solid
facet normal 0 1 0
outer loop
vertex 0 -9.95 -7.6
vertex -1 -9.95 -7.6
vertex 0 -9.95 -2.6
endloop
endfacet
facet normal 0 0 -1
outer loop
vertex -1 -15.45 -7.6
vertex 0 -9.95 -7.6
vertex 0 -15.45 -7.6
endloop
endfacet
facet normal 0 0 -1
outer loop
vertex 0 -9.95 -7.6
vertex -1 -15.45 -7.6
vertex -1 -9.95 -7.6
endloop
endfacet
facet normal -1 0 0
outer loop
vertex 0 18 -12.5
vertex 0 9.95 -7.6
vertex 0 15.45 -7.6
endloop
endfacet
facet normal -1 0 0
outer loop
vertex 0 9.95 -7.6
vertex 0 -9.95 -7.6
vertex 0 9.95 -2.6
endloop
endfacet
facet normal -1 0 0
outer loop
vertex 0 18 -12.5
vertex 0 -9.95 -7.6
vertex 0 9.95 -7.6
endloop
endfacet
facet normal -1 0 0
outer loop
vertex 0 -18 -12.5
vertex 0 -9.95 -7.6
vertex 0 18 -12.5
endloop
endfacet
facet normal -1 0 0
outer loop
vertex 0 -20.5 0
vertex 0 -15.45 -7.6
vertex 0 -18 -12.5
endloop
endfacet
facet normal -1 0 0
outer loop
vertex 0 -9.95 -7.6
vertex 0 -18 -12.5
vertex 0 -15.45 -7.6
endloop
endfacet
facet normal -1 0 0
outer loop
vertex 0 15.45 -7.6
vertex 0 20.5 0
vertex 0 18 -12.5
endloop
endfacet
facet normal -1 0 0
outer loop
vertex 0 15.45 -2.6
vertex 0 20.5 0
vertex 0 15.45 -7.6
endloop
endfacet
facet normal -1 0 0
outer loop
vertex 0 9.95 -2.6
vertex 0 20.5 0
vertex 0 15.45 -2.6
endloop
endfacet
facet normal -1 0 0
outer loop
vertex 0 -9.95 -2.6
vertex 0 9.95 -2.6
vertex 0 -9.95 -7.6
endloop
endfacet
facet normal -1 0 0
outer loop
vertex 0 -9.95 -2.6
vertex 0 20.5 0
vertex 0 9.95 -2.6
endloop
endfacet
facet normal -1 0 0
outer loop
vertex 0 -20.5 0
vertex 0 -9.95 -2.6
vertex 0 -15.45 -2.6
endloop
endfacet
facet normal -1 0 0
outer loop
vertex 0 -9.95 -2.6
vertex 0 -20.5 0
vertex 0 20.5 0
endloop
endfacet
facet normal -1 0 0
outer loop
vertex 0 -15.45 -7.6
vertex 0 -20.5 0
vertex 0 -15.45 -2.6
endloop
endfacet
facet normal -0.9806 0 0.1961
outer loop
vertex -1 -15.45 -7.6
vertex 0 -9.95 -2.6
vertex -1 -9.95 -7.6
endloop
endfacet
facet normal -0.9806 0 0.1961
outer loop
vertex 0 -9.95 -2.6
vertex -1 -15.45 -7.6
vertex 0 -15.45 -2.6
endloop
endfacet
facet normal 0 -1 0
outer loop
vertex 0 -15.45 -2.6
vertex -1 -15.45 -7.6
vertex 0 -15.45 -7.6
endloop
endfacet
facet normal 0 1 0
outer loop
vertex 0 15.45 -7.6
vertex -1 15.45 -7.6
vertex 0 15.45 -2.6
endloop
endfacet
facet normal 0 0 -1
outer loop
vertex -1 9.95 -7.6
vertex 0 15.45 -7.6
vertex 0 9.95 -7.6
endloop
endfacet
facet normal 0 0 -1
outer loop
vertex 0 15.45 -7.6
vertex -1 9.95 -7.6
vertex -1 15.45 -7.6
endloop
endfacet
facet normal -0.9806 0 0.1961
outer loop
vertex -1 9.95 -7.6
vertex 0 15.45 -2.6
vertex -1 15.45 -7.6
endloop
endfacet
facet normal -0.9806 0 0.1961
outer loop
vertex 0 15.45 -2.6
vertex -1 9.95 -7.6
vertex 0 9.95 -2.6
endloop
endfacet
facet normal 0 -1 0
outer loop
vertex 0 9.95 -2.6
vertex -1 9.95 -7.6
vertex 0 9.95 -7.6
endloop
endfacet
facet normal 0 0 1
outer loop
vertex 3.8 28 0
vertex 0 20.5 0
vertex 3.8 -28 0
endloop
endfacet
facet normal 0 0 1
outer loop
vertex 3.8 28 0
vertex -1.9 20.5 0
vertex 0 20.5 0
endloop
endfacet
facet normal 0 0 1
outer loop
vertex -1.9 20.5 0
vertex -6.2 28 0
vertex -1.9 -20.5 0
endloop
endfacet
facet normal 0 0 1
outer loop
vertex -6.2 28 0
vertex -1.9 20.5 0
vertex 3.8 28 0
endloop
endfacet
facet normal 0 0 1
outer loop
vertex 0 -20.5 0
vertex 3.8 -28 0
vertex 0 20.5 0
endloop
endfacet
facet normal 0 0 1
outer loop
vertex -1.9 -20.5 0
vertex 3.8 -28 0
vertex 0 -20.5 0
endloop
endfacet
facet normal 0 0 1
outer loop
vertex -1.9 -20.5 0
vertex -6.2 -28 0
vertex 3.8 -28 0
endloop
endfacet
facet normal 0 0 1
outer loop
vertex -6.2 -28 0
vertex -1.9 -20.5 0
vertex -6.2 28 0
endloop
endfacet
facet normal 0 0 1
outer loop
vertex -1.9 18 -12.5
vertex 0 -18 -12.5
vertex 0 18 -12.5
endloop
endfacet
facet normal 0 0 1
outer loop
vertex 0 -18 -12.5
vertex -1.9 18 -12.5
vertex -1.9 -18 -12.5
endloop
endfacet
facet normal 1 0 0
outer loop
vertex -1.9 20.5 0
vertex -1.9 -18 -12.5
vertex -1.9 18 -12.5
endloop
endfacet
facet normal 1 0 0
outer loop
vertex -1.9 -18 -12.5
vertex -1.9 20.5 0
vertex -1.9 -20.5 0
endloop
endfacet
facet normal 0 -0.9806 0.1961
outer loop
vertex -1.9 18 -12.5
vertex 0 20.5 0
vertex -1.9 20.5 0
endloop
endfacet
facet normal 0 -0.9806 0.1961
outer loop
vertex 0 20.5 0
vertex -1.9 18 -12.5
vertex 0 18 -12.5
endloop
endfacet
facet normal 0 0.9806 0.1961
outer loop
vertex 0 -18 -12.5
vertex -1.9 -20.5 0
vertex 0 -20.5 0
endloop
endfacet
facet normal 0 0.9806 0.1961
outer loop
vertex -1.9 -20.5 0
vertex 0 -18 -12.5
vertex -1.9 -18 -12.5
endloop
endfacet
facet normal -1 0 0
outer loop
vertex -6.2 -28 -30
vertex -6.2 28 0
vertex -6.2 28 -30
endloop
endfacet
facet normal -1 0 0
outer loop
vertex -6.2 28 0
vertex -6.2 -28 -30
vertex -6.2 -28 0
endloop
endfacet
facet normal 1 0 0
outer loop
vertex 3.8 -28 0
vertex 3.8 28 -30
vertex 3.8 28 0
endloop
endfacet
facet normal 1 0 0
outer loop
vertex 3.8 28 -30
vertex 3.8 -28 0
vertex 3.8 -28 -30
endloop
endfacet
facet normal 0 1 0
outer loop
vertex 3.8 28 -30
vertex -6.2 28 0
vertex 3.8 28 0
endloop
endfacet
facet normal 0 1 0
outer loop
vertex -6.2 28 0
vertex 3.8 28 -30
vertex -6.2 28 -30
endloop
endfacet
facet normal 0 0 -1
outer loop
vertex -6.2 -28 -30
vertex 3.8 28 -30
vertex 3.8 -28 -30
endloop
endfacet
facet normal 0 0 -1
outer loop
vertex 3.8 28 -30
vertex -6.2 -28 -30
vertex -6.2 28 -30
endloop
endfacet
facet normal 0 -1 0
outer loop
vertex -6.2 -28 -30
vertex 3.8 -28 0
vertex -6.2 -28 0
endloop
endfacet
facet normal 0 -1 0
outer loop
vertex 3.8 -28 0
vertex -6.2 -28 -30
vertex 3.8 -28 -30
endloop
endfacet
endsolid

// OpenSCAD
include <MCAD/units.scad>

dim_y = 56*mm;
dim_x = 10*mm;
dim_z = 30*mm;

slot_x_1 = 3.8*mm;

slot_y = 41*mm;
slot_bottom_y = 36*mm;
slot_x = 1.9*mm;
slot_z = 12.5*mm;

slot_relief_r = 2*mm;

snap_d_y = 1.00*inch;
snap_z = 7.6*mm;
snap_z_h = 5*mm;
snap_prot_x = 1*mm;
snap_y = 5.5*mm;

module snap() 
    translate([0,snap_y/2])
    rotate([0,0,180])
    linear_extrude(height = snap_z_h, scale=[0,1])
    square(size = [snap_prot_x, snap_y]);

difference() {
    translate([-dim_x+slot_x_1,-dim_y/2, -dim_z]) cube(size = [dim_x, dim_y, dim_z]);

    for(i=[0:1])
        mirror([0,i,0])
        rotate([0,180])
        linear_extrude(height = slot_z, scale=[1,slot_bottom_y/slot_y])
        square(size = [slot_x, slot_y/2]);
}

for (y = [-snap_d_y/2, snap_d_y/2])
    translate([0,y,-snap_z]) snap();
